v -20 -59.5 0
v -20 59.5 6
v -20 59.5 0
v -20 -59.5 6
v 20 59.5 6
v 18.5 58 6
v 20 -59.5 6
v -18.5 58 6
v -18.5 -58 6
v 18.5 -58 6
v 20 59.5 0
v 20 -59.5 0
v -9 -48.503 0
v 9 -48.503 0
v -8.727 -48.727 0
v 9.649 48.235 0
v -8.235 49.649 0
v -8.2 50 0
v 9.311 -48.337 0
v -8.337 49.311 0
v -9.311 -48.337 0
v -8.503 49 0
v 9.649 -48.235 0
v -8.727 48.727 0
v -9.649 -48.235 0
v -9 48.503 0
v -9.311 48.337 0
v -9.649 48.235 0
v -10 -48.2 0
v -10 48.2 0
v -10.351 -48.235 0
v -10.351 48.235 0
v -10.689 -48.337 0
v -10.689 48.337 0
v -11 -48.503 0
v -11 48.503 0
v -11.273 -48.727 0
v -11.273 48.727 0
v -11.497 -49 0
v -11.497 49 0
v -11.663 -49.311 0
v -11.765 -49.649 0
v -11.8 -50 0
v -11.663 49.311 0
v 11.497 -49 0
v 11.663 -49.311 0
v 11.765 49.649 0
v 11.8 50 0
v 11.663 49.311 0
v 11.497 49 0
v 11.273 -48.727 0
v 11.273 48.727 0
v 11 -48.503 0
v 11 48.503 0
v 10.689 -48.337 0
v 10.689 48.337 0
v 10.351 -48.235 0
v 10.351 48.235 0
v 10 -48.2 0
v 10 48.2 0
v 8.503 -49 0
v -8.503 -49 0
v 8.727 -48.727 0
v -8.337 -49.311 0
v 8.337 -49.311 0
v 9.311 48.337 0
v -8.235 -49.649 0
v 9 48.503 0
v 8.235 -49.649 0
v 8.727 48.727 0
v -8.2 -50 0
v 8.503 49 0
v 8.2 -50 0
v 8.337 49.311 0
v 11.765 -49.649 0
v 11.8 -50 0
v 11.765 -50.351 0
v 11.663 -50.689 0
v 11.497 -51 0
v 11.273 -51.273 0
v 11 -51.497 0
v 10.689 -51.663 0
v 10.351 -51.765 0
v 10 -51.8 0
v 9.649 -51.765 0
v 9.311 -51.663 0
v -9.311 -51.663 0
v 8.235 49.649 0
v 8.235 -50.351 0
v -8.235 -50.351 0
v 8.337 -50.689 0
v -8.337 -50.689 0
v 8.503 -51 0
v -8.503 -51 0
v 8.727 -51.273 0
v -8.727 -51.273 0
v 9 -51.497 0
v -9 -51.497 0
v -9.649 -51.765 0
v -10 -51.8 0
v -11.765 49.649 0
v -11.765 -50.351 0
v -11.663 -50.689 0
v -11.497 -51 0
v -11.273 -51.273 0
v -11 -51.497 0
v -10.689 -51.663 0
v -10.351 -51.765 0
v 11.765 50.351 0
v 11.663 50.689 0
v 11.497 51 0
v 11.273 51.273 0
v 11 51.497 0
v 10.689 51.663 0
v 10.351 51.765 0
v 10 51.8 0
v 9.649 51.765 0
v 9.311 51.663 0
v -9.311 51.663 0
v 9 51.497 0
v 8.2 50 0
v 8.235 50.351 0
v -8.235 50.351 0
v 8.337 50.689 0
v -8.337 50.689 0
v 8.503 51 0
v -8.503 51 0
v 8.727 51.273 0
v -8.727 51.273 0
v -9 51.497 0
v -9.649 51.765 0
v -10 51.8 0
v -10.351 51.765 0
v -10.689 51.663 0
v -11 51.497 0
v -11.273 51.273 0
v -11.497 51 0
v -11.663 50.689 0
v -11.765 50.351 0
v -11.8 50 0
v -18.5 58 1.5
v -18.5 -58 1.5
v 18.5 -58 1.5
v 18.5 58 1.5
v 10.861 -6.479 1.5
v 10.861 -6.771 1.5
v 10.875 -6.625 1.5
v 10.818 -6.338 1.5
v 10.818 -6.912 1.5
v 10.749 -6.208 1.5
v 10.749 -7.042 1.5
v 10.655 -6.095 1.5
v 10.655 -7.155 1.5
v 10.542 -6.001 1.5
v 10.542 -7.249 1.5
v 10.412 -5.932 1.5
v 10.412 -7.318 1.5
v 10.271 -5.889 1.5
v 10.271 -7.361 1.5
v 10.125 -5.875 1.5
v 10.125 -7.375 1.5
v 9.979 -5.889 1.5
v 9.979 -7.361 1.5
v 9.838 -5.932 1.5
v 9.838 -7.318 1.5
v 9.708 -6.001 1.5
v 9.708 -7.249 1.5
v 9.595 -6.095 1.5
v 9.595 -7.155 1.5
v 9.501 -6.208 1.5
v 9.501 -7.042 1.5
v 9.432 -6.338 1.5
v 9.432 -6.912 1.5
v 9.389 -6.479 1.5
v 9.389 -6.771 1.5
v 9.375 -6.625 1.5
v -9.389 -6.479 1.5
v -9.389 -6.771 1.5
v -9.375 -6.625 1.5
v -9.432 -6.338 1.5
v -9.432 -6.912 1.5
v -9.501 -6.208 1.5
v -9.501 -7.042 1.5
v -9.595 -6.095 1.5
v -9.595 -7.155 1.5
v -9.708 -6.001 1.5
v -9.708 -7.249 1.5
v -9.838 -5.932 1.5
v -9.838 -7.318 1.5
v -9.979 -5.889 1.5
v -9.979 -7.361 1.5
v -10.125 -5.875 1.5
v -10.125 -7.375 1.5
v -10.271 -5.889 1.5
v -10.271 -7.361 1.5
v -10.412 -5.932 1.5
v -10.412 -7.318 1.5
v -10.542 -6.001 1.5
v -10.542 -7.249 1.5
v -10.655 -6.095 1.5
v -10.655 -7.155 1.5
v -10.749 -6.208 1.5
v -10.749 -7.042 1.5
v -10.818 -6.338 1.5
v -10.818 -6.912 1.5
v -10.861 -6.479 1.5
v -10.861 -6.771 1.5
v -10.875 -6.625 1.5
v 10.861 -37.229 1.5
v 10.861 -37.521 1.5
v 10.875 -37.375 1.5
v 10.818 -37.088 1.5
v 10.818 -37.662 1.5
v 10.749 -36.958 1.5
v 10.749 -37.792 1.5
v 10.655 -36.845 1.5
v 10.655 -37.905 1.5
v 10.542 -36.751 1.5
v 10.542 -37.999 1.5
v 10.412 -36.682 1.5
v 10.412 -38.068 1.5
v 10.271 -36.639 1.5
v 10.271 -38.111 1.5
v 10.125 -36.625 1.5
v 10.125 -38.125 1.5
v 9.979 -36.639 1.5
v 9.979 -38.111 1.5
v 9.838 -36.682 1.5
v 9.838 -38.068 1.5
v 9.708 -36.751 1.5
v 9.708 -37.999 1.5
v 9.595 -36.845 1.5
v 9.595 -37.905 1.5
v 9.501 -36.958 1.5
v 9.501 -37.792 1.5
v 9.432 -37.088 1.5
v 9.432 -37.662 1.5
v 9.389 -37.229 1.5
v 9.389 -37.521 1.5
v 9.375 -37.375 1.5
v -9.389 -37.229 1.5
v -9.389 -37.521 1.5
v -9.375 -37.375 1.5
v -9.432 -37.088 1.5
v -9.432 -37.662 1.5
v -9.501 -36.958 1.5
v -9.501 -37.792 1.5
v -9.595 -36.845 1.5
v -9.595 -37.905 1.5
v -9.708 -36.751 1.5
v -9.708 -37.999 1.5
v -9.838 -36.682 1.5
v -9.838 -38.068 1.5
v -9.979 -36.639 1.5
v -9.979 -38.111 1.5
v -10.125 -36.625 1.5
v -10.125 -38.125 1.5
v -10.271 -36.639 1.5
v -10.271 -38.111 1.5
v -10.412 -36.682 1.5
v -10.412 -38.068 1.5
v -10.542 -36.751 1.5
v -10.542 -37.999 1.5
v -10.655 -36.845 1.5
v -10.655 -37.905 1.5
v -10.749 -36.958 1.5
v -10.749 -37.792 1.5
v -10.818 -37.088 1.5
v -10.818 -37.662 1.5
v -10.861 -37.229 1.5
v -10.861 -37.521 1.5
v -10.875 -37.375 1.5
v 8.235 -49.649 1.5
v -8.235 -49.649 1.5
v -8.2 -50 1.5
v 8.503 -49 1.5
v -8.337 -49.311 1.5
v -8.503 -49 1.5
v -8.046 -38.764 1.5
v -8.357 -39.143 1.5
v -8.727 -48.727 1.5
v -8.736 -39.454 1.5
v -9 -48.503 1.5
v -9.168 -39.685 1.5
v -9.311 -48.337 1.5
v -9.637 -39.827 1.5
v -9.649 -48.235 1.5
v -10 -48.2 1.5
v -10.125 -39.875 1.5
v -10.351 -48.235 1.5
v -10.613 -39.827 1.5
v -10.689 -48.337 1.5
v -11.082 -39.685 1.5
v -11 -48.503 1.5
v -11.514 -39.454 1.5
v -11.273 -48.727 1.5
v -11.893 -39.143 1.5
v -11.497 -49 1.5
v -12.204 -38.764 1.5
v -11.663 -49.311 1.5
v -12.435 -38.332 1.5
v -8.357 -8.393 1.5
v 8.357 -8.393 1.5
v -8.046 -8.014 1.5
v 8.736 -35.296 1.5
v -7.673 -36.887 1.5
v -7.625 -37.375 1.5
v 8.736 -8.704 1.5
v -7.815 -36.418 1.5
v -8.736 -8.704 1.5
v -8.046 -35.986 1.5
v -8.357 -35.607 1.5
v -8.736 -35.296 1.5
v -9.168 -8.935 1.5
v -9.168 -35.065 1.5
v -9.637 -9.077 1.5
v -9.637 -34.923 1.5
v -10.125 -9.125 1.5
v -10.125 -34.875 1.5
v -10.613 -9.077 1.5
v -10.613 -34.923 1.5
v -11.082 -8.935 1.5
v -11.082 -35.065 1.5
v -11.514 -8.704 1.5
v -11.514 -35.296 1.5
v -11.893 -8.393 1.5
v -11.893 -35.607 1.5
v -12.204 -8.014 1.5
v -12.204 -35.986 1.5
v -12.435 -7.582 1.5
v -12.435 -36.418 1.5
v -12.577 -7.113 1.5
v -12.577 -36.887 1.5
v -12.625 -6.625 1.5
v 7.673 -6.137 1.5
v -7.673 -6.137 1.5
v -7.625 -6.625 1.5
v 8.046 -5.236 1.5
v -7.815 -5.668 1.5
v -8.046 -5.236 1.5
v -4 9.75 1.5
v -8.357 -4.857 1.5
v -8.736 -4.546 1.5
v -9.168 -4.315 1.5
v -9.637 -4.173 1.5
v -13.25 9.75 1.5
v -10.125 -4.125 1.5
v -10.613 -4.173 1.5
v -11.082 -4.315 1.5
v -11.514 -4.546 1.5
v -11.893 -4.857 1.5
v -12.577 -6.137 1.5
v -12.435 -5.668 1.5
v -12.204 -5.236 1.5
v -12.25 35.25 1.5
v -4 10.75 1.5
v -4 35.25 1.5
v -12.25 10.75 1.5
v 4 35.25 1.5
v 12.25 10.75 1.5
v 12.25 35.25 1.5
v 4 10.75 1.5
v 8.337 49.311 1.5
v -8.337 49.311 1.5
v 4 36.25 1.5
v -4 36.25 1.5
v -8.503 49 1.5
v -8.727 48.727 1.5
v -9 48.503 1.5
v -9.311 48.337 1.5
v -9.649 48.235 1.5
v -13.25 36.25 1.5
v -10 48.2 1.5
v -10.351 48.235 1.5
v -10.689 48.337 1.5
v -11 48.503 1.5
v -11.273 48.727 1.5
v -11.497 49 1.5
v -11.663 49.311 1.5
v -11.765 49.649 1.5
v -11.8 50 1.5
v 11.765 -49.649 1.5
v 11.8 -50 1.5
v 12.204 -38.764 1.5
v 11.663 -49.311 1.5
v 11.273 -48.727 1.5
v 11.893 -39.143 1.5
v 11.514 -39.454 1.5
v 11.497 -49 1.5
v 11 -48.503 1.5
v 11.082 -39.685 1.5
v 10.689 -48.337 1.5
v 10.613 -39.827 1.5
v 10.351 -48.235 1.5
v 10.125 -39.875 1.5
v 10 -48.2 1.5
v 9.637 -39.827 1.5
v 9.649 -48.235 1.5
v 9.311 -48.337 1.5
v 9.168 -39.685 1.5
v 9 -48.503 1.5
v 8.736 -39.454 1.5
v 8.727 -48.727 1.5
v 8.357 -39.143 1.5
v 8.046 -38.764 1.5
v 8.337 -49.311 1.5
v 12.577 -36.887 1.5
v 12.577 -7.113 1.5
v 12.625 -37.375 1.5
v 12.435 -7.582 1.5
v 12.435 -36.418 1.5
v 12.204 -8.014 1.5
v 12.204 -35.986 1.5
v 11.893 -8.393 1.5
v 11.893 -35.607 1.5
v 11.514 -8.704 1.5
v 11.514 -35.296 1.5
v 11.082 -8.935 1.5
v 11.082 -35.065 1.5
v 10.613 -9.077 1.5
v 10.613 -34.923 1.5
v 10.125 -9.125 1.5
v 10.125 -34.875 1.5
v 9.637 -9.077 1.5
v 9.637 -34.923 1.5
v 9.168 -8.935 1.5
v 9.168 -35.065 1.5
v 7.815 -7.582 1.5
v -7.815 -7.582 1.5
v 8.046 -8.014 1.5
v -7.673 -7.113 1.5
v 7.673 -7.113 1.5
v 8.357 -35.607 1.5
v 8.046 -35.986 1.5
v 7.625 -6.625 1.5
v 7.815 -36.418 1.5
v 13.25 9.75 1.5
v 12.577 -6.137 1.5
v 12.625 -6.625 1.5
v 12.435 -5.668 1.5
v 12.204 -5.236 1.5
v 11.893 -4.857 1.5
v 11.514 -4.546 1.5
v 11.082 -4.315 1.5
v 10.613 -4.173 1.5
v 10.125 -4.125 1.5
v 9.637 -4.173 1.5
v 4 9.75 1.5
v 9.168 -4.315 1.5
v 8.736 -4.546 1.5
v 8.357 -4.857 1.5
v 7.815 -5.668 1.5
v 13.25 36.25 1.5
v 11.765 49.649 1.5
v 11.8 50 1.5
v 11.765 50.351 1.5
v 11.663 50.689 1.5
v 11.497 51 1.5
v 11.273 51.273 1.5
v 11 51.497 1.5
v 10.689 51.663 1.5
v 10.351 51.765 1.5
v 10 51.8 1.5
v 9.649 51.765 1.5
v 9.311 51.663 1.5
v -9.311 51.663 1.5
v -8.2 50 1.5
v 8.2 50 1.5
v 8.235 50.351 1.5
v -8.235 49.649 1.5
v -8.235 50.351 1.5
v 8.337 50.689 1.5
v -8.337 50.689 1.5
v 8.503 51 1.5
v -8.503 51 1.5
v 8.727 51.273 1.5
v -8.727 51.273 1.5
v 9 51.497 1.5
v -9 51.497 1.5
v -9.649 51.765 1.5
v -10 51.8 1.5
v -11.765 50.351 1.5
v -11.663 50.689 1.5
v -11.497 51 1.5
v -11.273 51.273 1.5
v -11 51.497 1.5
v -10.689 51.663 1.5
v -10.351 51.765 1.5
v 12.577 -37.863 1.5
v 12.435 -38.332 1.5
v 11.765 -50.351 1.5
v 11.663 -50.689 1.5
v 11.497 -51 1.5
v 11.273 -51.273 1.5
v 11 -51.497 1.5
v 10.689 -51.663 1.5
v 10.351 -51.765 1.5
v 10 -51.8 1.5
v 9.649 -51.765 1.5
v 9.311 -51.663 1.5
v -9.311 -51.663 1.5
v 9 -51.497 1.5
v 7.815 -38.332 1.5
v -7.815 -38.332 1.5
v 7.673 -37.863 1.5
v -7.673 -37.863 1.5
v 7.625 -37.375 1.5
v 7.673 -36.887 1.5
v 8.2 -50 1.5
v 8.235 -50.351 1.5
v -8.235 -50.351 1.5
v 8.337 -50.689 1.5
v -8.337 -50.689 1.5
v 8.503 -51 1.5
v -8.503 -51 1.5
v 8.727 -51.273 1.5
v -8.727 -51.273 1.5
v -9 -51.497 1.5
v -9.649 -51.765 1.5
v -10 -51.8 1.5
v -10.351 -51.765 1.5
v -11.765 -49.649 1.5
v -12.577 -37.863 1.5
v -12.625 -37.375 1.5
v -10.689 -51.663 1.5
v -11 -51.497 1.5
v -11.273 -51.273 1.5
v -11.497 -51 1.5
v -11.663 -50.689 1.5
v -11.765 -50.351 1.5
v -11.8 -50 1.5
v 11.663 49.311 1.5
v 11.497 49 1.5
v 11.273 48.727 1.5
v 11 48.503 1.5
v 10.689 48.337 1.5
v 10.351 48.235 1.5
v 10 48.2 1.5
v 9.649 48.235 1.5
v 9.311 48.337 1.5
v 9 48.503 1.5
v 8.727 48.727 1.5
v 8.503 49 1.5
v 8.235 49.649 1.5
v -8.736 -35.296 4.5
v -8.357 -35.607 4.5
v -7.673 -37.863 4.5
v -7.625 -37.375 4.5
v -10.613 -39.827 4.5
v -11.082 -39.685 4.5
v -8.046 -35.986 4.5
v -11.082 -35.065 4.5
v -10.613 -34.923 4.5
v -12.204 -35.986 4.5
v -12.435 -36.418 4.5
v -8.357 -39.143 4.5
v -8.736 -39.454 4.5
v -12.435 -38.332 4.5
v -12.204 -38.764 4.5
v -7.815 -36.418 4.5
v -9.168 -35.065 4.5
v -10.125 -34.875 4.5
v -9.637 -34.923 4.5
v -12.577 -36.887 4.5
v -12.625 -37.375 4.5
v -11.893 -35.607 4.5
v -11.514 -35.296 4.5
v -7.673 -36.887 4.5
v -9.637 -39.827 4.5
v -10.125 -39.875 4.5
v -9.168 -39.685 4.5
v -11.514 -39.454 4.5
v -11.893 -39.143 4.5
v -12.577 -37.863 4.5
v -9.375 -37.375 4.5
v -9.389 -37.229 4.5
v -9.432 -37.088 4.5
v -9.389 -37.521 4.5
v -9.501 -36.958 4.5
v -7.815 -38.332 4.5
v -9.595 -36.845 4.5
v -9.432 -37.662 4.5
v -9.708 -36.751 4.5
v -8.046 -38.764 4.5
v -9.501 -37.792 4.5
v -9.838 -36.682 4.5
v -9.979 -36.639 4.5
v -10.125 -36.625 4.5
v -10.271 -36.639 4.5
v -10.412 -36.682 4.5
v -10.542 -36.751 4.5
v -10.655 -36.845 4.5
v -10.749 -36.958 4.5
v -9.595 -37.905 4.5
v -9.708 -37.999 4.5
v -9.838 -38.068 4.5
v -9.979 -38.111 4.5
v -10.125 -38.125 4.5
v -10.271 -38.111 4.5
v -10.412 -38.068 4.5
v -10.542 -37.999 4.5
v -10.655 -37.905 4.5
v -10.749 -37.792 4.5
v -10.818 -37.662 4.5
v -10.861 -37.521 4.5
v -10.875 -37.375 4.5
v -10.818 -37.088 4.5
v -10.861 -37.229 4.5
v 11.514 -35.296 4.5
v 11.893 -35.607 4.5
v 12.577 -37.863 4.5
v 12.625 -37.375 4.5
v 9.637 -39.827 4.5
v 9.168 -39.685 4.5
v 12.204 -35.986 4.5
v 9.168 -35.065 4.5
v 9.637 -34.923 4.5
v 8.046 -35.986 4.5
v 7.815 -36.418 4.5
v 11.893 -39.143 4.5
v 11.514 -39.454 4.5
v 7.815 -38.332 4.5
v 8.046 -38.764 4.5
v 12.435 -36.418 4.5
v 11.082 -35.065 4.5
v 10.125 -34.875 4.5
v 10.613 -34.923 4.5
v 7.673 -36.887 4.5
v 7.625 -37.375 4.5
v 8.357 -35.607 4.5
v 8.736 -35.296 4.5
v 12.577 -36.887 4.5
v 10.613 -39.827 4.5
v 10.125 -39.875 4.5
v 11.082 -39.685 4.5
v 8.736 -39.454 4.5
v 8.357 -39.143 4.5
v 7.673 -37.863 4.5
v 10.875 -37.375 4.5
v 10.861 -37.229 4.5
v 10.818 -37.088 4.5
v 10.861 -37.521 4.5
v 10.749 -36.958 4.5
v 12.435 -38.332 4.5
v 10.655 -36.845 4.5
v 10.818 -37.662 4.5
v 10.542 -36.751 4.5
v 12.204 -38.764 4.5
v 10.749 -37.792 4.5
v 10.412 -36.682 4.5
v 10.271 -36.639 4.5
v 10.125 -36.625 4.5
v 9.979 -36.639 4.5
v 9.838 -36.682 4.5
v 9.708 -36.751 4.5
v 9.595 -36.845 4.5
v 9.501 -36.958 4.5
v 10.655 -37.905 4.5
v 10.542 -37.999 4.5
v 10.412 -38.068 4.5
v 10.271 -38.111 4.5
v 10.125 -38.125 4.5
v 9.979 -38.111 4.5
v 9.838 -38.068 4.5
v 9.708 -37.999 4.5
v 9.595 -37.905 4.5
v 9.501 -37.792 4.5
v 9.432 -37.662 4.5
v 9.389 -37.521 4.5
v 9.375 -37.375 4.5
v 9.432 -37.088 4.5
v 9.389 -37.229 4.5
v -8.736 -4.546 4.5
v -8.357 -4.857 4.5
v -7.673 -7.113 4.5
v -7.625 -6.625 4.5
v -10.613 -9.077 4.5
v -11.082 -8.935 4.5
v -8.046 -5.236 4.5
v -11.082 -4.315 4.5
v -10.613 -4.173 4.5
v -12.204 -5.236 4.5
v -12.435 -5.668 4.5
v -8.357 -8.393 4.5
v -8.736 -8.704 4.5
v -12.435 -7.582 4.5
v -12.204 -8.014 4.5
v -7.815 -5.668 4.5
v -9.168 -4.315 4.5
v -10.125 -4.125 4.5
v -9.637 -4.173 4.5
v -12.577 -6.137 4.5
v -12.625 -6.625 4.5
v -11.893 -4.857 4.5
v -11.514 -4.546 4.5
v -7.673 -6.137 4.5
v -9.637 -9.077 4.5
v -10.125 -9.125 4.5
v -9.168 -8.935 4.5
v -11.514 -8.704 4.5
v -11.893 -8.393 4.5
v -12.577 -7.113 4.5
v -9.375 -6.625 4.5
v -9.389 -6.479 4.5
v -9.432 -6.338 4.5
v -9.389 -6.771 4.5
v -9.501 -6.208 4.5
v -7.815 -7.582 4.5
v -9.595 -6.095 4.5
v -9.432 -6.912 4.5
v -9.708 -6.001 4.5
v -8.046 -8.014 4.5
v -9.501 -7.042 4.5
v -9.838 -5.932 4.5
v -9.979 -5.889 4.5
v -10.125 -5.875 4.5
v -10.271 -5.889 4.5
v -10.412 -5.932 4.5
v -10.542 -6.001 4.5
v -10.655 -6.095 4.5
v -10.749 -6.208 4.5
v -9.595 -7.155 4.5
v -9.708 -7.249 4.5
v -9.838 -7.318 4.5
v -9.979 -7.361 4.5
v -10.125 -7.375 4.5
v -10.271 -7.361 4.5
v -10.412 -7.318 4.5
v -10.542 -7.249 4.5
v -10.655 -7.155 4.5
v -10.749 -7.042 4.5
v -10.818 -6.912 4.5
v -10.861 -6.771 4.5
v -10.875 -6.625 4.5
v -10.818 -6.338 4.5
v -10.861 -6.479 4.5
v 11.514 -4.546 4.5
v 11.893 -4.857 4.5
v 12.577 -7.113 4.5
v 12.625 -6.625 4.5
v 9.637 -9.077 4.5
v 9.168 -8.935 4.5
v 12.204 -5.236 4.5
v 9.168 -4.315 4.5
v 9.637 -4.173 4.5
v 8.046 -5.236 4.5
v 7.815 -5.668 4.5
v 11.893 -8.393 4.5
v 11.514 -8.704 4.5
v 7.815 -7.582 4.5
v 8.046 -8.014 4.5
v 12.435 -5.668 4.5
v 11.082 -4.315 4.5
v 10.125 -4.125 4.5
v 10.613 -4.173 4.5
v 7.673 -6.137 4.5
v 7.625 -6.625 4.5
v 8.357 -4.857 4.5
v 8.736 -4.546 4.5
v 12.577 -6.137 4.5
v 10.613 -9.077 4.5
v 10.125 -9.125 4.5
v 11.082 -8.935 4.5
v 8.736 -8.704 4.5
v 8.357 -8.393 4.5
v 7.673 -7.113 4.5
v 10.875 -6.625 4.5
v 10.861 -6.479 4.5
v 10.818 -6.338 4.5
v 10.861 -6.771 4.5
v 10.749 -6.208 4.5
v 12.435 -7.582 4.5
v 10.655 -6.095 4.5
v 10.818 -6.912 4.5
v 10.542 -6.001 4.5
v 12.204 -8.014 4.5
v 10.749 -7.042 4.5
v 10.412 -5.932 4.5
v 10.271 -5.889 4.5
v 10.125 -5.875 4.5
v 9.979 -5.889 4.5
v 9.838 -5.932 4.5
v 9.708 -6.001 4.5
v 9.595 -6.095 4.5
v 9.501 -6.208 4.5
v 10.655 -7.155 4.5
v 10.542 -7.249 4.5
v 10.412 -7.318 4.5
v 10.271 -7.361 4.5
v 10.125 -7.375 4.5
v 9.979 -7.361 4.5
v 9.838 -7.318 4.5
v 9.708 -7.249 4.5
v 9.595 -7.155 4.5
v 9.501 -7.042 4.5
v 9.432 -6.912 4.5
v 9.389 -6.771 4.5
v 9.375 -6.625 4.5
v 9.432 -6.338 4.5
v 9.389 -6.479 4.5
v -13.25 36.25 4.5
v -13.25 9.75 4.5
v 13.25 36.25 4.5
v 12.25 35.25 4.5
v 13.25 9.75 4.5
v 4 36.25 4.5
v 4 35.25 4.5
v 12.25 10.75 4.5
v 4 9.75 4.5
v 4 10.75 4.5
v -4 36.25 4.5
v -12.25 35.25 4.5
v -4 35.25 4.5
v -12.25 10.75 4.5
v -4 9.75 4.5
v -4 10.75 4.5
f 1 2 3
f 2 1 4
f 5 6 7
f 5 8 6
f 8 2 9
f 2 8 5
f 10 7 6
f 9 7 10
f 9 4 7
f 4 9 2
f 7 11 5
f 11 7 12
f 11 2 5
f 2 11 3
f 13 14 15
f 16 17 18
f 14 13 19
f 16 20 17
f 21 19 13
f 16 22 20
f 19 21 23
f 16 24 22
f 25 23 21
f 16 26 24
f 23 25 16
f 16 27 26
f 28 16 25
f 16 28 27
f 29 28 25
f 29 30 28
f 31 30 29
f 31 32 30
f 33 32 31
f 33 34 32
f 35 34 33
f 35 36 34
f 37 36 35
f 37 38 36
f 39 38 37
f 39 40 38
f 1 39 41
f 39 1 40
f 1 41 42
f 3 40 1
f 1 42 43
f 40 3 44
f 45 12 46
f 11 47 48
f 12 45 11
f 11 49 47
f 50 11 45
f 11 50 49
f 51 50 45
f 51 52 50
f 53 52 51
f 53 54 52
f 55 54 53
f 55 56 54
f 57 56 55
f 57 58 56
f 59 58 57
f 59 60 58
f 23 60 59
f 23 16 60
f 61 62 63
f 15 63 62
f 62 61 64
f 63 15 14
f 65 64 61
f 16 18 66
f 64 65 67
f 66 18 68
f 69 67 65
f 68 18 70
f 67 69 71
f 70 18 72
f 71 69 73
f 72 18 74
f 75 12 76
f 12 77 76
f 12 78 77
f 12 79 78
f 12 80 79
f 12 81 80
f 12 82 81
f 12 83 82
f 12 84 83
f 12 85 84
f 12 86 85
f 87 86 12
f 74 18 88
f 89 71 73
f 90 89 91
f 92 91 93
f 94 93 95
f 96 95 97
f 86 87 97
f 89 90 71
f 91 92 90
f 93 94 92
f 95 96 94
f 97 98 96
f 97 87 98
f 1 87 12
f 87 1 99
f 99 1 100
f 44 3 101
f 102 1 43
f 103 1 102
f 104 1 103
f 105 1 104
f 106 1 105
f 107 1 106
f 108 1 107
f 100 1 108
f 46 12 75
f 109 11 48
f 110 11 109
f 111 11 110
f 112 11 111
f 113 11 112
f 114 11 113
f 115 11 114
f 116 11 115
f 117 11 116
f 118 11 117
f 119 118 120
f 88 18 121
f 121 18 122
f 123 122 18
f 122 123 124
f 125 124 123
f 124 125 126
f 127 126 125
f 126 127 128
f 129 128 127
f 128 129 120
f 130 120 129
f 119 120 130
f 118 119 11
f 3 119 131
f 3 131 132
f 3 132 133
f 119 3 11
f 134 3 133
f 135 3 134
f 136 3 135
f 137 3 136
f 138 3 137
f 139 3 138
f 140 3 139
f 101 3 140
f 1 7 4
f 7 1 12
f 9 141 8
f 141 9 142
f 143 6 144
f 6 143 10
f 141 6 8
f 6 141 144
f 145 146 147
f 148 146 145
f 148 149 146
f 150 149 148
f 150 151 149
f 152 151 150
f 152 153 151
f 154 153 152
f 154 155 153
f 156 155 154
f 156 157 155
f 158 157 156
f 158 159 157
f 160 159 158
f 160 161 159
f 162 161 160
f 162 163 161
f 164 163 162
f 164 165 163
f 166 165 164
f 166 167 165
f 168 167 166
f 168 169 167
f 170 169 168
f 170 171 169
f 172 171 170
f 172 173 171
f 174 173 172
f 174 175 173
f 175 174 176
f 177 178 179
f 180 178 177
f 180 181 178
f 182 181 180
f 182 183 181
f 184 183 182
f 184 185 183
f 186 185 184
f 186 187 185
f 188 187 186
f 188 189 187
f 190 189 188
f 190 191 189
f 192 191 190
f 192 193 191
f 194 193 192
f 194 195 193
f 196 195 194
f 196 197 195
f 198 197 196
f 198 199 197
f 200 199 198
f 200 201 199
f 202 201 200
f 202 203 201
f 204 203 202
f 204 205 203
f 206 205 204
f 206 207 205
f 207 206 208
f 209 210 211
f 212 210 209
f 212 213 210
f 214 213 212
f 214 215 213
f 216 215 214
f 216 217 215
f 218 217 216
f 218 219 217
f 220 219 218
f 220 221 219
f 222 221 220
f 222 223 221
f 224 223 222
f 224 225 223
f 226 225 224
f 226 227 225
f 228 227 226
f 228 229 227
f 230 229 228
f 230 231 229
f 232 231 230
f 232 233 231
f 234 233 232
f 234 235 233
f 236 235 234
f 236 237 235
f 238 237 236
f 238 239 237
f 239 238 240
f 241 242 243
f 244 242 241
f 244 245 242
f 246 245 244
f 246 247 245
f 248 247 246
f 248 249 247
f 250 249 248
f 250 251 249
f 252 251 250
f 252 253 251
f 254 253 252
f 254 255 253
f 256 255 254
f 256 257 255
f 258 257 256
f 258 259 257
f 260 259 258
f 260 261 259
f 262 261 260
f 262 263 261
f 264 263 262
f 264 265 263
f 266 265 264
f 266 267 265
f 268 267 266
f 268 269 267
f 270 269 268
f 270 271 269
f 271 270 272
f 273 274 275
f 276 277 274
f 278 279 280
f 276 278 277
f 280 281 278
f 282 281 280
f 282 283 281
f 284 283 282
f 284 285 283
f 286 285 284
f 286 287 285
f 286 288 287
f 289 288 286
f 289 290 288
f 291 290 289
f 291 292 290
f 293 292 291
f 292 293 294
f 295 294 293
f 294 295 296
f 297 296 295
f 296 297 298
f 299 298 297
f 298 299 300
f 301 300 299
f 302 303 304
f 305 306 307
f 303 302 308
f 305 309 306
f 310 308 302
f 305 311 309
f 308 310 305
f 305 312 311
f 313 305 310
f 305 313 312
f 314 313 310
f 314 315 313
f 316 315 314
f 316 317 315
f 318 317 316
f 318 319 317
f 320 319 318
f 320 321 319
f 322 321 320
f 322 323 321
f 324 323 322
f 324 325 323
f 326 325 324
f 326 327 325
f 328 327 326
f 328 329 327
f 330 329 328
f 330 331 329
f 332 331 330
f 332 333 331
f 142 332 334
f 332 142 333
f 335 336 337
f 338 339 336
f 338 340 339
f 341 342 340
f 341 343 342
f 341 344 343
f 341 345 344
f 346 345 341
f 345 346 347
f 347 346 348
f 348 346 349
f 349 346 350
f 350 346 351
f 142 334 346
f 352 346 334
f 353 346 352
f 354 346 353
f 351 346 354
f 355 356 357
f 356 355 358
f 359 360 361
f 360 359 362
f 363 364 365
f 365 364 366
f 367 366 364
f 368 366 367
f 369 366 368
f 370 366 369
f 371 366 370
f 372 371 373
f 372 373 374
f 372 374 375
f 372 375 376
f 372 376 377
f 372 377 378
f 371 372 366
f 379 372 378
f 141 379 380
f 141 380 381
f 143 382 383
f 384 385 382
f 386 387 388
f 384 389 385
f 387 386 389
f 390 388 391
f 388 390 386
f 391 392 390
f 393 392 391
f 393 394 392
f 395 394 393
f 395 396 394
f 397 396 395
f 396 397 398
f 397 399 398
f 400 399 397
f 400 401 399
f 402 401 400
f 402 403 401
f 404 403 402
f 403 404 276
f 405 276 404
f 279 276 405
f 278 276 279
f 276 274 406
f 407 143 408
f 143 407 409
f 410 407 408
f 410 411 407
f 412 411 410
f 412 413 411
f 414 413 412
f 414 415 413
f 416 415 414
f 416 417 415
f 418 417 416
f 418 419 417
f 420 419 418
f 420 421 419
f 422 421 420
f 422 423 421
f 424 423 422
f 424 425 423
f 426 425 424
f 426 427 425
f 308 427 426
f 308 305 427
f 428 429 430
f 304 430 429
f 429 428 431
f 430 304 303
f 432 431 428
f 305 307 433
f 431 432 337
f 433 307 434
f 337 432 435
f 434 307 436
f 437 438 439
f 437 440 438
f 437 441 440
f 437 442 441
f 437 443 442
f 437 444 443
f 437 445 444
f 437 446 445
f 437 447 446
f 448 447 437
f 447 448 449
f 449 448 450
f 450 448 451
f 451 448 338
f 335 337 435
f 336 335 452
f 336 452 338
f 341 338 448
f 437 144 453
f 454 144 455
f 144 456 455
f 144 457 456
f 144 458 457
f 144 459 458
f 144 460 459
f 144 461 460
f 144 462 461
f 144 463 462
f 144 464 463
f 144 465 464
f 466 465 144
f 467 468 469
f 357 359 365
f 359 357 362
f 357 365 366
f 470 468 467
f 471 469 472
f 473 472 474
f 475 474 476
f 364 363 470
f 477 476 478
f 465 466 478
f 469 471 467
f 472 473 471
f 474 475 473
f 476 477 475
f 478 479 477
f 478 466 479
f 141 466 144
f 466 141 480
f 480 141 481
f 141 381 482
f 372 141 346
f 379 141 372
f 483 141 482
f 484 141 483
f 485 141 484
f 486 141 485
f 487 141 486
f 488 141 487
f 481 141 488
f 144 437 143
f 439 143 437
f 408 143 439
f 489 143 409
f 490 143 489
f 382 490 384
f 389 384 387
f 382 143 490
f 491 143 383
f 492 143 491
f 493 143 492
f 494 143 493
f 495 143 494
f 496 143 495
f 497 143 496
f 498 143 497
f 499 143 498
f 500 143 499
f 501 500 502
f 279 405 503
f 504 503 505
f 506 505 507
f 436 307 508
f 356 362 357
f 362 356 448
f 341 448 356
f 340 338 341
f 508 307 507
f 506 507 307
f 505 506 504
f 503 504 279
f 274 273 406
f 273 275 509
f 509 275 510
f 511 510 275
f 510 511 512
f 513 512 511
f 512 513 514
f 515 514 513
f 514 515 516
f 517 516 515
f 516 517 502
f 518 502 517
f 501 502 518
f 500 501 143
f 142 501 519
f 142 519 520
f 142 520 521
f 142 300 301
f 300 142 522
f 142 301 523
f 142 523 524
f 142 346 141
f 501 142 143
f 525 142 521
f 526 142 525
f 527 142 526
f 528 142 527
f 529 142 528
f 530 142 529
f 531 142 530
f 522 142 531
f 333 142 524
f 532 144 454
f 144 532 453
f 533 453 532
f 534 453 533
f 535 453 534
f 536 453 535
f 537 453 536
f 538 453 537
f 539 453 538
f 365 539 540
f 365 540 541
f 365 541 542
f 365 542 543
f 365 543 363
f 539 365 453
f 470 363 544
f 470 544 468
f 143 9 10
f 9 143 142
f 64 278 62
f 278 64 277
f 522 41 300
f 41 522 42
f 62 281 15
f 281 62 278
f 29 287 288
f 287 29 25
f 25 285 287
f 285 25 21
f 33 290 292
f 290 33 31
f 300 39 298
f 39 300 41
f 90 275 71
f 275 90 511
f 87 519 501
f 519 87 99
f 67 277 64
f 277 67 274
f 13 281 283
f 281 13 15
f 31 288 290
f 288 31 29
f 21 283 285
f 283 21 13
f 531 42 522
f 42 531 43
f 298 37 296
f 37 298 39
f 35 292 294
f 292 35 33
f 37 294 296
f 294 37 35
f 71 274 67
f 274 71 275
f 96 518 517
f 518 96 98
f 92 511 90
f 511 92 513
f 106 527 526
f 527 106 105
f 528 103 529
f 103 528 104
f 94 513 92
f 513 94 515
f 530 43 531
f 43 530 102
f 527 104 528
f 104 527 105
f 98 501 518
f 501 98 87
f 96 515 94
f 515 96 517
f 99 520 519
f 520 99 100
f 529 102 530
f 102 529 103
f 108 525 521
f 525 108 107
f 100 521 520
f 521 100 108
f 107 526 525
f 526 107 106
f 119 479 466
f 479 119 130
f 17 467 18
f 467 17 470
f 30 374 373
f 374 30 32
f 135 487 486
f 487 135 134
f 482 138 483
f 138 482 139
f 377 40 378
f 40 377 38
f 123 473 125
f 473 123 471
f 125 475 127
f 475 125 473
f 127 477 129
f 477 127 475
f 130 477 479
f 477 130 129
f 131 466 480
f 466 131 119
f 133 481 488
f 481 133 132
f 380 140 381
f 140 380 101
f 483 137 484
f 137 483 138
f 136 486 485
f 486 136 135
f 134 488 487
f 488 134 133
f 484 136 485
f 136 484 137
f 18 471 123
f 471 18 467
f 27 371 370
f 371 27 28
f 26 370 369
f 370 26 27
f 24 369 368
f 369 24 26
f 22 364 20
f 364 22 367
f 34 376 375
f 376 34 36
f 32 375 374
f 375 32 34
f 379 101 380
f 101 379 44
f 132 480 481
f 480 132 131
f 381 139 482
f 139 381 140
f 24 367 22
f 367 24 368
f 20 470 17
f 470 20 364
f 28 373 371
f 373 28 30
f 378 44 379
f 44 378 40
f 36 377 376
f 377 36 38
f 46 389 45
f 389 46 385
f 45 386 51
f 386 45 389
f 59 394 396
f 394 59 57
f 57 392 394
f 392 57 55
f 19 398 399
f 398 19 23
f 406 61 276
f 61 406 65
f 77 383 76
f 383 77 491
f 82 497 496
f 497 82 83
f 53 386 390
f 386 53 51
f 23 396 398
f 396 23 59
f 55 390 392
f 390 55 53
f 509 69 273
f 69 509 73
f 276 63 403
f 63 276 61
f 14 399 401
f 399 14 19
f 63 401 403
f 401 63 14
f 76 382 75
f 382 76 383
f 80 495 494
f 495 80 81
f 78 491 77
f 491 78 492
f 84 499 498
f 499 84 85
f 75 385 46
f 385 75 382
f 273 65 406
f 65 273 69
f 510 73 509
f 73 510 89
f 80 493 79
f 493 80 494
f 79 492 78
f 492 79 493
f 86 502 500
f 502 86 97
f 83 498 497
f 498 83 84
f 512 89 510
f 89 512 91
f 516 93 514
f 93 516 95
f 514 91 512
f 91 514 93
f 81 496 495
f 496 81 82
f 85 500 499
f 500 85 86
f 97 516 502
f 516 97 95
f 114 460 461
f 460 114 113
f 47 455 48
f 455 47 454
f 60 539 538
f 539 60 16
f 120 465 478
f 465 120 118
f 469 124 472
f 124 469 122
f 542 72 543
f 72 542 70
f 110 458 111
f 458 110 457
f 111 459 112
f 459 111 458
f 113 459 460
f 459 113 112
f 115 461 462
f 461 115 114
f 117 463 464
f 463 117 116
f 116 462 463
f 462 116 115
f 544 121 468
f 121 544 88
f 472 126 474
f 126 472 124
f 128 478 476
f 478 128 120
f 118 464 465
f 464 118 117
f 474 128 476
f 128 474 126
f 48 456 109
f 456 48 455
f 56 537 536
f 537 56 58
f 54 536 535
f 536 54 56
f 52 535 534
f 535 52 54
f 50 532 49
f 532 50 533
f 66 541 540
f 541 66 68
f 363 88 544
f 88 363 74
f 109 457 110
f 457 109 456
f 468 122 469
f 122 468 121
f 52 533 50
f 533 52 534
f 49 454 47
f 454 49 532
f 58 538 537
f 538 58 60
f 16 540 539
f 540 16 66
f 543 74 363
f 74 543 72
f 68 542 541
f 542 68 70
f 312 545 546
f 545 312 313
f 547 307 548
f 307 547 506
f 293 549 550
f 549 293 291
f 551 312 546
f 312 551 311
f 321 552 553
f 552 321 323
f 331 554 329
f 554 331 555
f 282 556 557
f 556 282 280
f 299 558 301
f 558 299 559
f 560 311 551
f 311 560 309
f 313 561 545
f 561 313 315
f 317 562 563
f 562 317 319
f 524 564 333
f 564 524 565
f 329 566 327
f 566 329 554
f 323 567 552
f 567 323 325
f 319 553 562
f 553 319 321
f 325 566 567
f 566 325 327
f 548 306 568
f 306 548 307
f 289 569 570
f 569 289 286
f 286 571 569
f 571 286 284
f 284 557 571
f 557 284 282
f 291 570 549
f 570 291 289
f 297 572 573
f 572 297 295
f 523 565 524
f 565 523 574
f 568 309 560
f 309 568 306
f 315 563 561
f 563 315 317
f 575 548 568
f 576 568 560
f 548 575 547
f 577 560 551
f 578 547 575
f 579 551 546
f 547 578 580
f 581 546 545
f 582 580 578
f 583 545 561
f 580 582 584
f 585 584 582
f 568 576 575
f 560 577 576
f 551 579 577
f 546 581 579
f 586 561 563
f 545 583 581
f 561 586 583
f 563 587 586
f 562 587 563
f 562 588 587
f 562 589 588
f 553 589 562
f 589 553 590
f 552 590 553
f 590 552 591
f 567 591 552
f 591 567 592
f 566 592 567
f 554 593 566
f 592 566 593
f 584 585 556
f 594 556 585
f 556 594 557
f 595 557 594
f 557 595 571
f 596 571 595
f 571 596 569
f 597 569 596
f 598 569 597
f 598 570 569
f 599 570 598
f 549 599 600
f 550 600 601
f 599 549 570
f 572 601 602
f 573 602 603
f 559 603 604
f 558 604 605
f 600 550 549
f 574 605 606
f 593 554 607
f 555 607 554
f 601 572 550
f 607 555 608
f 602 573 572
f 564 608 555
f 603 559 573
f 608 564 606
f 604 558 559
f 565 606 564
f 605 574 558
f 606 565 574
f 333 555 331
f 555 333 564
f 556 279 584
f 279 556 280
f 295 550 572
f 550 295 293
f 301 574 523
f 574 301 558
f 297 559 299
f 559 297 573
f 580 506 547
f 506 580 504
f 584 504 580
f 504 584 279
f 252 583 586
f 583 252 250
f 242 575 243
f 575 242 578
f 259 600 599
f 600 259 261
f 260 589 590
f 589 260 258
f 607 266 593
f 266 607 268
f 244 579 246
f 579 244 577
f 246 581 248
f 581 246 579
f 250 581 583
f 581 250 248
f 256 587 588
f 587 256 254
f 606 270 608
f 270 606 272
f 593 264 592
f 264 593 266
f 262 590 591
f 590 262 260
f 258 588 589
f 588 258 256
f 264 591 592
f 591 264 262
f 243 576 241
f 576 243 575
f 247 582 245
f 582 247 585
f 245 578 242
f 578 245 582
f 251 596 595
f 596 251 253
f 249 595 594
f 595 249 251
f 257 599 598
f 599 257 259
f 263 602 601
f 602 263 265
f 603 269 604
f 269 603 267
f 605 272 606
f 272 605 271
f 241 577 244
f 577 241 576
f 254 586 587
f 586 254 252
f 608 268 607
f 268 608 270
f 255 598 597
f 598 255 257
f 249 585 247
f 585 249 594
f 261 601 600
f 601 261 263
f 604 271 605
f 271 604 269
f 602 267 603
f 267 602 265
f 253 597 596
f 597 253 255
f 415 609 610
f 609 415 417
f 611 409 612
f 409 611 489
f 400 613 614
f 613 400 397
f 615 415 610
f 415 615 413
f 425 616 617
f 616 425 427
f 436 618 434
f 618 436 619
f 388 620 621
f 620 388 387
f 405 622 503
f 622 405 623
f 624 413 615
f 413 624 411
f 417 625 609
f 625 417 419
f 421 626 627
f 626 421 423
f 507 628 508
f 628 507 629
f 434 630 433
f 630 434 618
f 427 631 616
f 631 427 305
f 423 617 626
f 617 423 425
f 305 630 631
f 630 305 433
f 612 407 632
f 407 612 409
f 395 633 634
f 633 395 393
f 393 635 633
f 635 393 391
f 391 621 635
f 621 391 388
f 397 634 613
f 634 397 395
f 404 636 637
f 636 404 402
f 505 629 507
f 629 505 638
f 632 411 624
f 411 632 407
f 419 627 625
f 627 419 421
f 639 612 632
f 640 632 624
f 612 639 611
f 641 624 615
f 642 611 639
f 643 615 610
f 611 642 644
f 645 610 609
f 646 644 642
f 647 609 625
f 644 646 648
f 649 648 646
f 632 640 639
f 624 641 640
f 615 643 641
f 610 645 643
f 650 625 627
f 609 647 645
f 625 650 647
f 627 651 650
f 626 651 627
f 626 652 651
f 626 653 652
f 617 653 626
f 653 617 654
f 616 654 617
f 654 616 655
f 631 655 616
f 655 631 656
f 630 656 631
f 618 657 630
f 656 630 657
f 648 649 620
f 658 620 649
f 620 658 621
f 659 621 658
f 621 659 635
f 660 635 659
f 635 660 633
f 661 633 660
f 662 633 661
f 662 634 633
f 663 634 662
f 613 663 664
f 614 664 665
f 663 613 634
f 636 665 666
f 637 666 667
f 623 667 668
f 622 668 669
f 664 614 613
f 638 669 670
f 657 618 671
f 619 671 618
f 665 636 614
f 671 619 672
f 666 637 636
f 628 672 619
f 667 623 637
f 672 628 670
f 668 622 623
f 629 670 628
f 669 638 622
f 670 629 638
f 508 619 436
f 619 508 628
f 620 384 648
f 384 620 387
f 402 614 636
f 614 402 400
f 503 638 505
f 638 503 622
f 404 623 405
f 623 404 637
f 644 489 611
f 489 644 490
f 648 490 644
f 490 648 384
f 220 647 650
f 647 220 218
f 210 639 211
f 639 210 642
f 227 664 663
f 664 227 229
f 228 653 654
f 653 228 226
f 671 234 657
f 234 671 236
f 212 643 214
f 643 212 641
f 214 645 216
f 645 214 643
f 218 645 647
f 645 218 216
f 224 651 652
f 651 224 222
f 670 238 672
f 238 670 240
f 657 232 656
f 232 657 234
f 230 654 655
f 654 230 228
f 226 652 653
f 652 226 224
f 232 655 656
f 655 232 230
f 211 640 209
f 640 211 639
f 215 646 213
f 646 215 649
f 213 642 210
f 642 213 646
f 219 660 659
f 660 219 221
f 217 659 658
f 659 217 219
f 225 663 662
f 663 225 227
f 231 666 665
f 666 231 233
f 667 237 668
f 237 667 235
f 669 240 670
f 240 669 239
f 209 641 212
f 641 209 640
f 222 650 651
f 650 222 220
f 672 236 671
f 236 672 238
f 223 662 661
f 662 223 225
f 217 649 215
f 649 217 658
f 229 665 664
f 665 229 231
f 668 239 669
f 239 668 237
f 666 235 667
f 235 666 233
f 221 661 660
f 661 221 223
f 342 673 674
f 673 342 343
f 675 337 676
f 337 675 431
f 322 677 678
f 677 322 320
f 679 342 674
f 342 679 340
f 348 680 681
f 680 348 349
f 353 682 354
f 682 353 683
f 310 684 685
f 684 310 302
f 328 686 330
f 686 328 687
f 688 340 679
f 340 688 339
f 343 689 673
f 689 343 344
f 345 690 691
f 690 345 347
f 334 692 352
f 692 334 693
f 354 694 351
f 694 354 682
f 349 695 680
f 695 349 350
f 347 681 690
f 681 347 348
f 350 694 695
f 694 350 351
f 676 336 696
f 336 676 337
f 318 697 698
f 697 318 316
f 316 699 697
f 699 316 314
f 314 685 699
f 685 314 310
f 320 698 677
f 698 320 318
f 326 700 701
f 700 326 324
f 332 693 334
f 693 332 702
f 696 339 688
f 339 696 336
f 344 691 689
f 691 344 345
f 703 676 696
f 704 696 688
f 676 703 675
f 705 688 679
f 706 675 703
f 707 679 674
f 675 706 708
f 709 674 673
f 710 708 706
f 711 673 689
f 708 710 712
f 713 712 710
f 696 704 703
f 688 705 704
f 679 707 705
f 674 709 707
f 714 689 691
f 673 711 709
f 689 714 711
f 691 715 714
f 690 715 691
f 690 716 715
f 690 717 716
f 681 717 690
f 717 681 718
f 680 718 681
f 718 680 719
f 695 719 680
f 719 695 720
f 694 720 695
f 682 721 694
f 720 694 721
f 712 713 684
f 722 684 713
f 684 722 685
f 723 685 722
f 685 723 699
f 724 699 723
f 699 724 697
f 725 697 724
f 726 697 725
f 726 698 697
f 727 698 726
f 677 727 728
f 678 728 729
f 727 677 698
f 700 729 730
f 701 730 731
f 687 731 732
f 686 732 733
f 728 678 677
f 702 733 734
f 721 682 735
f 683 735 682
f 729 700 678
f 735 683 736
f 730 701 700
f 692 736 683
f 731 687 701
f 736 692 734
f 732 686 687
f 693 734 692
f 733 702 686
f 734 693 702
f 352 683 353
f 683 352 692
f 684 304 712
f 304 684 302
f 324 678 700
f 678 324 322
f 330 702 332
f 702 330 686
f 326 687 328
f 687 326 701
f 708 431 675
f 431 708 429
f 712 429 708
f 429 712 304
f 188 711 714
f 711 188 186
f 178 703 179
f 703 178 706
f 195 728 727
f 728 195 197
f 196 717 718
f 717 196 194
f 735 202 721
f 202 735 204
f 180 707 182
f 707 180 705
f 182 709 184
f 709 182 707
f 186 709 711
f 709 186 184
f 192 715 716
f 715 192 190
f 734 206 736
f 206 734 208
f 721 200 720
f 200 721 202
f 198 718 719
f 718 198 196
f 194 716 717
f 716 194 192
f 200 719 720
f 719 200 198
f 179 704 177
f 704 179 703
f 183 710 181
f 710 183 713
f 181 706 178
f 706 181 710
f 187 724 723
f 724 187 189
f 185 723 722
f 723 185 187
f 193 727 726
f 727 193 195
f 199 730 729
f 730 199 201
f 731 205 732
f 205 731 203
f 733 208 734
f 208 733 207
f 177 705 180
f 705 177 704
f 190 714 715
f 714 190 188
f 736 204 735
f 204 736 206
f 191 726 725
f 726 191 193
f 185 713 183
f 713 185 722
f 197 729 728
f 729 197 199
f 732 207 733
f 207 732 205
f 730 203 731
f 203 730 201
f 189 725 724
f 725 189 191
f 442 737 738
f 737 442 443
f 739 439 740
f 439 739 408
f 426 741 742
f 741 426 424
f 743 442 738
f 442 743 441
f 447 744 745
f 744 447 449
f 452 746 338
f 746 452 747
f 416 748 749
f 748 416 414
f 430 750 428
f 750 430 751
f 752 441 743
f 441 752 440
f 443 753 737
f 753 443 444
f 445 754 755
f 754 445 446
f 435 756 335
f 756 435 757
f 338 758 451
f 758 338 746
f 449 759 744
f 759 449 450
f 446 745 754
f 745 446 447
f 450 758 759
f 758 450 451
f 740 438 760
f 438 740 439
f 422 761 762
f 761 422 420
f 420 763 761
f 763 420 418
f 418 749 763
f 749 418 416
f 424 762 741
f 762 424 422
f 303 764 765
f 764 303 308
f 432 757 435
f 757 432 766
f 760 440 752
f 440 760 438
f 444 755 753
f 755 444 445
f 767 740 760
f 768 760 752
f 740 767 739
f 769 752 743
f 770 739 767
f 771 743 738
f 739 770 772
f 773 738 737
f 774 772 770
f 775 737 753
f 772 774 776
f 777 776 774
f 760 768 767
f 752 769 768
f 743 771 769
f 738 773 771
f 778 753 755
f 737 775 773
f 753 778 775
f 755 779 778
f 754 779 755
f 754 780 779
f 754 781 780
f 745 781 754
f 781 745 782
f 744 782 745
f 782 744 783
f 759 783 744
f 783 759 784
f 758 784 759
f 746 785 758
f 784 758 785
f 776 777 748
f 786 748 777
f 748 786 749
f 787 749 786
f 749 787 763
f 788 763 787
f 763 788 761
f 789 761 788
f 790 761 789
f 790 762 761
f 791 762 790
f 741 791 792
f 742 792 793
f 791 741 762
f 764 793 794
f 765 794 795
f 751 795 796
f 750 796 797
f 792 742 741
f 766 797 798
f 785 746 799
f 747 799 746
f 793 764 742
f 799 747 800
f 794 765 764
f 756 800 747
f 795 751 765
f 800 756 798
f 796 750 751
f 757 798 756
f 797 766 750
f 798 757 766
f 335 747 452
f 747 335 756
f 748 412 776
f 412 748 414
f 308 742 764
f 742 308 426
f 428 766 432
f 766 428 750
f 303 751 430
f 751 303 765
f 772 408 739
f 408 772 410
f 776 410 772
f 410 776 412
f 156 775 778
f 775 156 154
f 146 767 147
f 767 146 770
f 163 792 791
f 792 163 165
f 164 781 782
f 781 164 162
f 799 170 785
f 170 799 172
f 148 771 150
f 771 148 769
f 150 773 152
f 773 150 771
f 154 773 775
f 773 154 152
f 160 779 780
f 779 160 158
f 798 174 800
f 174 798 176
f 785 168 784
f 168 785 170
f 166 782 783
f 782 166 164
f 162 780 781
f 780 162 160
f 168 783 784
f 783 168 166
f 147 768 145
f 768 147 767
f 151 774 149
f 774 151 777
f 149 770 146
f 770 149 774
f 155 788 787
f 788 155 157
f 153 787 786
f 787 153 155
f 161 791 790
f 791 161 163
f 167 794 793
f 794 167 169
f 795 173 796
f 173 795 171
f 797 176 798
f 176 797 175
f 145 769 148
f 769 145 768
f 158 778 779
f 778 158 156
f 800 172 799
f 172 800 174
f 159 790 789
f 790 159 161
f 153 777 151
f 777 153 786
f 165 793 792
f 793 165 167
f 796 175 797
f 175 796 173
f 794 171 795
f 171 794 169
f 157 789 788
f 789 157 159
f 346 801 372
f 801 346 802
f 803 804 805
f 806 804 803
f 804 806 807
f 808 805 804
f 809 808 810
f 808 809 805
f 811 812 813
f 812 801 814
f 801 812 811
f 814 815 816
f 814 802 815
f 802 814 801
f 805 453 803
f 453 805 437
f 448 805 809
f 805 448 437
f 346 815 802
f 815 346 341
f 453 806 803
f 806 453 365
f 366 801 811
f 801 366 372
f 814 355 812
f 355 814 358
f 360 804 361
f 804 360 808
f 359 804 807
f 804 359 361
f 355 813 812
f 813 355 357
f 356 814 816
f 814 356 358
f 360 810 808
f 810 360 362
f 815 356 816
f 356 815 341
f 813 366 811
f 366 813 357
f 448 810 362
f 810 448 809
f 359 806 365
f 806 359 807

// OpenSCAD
L=40;
W=119;
H=6;

bW=30.75;
bL=20.25;

hW=100;
hL=20;

difference() {
    translate([-L/2,-W/2,0])
    cube([L,W,H]);
    
    translate([-L/2+1.5,-W/2+1.5,1.5])
    cube([L-3,W-3,H]);
  
    translate([-hL/2,-hW/2,0])
    cylinder(d=3.6,h=5,$fn=32);
    translate([-hL/2,hW/2,0])
    cylinder(d=3.6,h=5,$fn=32);
    translate([hL/2,-hW/2,0])
    cylinder(d=3.6,h=5,$fn=32);
    translate([hL/2,hW/2,0])
    cylinder(d=3.6,h=5,$fn=32);
}

translate([-bL/2,-bW/2-22,1.5])
standoff();
translate([bL/2,-bW/2-22,1.5])
standoff();
translate([-bL/2,bW/2-22,1.5])
standoff();
translate([bL/2,bW/2-22,1.5])
standoff();

translate([0,23,1.5])
gpsantenna();

module gpsantenna() {
    difference() {
    translate([-26.5/2,-26.5/2])
    cube([26.5,26.5,3]);
    translate([-24.5/2,-24.5/2])
    cube([24.5,24.5,4]);
    cube([8,50,15],center=true);
    }
}

module standoff() {
    difference() {
        cylinder(d=5,h=3,$fn=32);
        cylinder(d=1.5,h=6,$fn=32);
    }
}

module corner() {
    
difference() {
    translate([-3.5,-3.5,0])
    cube([7,7,H]);
    cylinder(h=2*H,d=4.7,$fn=16);
}
}
